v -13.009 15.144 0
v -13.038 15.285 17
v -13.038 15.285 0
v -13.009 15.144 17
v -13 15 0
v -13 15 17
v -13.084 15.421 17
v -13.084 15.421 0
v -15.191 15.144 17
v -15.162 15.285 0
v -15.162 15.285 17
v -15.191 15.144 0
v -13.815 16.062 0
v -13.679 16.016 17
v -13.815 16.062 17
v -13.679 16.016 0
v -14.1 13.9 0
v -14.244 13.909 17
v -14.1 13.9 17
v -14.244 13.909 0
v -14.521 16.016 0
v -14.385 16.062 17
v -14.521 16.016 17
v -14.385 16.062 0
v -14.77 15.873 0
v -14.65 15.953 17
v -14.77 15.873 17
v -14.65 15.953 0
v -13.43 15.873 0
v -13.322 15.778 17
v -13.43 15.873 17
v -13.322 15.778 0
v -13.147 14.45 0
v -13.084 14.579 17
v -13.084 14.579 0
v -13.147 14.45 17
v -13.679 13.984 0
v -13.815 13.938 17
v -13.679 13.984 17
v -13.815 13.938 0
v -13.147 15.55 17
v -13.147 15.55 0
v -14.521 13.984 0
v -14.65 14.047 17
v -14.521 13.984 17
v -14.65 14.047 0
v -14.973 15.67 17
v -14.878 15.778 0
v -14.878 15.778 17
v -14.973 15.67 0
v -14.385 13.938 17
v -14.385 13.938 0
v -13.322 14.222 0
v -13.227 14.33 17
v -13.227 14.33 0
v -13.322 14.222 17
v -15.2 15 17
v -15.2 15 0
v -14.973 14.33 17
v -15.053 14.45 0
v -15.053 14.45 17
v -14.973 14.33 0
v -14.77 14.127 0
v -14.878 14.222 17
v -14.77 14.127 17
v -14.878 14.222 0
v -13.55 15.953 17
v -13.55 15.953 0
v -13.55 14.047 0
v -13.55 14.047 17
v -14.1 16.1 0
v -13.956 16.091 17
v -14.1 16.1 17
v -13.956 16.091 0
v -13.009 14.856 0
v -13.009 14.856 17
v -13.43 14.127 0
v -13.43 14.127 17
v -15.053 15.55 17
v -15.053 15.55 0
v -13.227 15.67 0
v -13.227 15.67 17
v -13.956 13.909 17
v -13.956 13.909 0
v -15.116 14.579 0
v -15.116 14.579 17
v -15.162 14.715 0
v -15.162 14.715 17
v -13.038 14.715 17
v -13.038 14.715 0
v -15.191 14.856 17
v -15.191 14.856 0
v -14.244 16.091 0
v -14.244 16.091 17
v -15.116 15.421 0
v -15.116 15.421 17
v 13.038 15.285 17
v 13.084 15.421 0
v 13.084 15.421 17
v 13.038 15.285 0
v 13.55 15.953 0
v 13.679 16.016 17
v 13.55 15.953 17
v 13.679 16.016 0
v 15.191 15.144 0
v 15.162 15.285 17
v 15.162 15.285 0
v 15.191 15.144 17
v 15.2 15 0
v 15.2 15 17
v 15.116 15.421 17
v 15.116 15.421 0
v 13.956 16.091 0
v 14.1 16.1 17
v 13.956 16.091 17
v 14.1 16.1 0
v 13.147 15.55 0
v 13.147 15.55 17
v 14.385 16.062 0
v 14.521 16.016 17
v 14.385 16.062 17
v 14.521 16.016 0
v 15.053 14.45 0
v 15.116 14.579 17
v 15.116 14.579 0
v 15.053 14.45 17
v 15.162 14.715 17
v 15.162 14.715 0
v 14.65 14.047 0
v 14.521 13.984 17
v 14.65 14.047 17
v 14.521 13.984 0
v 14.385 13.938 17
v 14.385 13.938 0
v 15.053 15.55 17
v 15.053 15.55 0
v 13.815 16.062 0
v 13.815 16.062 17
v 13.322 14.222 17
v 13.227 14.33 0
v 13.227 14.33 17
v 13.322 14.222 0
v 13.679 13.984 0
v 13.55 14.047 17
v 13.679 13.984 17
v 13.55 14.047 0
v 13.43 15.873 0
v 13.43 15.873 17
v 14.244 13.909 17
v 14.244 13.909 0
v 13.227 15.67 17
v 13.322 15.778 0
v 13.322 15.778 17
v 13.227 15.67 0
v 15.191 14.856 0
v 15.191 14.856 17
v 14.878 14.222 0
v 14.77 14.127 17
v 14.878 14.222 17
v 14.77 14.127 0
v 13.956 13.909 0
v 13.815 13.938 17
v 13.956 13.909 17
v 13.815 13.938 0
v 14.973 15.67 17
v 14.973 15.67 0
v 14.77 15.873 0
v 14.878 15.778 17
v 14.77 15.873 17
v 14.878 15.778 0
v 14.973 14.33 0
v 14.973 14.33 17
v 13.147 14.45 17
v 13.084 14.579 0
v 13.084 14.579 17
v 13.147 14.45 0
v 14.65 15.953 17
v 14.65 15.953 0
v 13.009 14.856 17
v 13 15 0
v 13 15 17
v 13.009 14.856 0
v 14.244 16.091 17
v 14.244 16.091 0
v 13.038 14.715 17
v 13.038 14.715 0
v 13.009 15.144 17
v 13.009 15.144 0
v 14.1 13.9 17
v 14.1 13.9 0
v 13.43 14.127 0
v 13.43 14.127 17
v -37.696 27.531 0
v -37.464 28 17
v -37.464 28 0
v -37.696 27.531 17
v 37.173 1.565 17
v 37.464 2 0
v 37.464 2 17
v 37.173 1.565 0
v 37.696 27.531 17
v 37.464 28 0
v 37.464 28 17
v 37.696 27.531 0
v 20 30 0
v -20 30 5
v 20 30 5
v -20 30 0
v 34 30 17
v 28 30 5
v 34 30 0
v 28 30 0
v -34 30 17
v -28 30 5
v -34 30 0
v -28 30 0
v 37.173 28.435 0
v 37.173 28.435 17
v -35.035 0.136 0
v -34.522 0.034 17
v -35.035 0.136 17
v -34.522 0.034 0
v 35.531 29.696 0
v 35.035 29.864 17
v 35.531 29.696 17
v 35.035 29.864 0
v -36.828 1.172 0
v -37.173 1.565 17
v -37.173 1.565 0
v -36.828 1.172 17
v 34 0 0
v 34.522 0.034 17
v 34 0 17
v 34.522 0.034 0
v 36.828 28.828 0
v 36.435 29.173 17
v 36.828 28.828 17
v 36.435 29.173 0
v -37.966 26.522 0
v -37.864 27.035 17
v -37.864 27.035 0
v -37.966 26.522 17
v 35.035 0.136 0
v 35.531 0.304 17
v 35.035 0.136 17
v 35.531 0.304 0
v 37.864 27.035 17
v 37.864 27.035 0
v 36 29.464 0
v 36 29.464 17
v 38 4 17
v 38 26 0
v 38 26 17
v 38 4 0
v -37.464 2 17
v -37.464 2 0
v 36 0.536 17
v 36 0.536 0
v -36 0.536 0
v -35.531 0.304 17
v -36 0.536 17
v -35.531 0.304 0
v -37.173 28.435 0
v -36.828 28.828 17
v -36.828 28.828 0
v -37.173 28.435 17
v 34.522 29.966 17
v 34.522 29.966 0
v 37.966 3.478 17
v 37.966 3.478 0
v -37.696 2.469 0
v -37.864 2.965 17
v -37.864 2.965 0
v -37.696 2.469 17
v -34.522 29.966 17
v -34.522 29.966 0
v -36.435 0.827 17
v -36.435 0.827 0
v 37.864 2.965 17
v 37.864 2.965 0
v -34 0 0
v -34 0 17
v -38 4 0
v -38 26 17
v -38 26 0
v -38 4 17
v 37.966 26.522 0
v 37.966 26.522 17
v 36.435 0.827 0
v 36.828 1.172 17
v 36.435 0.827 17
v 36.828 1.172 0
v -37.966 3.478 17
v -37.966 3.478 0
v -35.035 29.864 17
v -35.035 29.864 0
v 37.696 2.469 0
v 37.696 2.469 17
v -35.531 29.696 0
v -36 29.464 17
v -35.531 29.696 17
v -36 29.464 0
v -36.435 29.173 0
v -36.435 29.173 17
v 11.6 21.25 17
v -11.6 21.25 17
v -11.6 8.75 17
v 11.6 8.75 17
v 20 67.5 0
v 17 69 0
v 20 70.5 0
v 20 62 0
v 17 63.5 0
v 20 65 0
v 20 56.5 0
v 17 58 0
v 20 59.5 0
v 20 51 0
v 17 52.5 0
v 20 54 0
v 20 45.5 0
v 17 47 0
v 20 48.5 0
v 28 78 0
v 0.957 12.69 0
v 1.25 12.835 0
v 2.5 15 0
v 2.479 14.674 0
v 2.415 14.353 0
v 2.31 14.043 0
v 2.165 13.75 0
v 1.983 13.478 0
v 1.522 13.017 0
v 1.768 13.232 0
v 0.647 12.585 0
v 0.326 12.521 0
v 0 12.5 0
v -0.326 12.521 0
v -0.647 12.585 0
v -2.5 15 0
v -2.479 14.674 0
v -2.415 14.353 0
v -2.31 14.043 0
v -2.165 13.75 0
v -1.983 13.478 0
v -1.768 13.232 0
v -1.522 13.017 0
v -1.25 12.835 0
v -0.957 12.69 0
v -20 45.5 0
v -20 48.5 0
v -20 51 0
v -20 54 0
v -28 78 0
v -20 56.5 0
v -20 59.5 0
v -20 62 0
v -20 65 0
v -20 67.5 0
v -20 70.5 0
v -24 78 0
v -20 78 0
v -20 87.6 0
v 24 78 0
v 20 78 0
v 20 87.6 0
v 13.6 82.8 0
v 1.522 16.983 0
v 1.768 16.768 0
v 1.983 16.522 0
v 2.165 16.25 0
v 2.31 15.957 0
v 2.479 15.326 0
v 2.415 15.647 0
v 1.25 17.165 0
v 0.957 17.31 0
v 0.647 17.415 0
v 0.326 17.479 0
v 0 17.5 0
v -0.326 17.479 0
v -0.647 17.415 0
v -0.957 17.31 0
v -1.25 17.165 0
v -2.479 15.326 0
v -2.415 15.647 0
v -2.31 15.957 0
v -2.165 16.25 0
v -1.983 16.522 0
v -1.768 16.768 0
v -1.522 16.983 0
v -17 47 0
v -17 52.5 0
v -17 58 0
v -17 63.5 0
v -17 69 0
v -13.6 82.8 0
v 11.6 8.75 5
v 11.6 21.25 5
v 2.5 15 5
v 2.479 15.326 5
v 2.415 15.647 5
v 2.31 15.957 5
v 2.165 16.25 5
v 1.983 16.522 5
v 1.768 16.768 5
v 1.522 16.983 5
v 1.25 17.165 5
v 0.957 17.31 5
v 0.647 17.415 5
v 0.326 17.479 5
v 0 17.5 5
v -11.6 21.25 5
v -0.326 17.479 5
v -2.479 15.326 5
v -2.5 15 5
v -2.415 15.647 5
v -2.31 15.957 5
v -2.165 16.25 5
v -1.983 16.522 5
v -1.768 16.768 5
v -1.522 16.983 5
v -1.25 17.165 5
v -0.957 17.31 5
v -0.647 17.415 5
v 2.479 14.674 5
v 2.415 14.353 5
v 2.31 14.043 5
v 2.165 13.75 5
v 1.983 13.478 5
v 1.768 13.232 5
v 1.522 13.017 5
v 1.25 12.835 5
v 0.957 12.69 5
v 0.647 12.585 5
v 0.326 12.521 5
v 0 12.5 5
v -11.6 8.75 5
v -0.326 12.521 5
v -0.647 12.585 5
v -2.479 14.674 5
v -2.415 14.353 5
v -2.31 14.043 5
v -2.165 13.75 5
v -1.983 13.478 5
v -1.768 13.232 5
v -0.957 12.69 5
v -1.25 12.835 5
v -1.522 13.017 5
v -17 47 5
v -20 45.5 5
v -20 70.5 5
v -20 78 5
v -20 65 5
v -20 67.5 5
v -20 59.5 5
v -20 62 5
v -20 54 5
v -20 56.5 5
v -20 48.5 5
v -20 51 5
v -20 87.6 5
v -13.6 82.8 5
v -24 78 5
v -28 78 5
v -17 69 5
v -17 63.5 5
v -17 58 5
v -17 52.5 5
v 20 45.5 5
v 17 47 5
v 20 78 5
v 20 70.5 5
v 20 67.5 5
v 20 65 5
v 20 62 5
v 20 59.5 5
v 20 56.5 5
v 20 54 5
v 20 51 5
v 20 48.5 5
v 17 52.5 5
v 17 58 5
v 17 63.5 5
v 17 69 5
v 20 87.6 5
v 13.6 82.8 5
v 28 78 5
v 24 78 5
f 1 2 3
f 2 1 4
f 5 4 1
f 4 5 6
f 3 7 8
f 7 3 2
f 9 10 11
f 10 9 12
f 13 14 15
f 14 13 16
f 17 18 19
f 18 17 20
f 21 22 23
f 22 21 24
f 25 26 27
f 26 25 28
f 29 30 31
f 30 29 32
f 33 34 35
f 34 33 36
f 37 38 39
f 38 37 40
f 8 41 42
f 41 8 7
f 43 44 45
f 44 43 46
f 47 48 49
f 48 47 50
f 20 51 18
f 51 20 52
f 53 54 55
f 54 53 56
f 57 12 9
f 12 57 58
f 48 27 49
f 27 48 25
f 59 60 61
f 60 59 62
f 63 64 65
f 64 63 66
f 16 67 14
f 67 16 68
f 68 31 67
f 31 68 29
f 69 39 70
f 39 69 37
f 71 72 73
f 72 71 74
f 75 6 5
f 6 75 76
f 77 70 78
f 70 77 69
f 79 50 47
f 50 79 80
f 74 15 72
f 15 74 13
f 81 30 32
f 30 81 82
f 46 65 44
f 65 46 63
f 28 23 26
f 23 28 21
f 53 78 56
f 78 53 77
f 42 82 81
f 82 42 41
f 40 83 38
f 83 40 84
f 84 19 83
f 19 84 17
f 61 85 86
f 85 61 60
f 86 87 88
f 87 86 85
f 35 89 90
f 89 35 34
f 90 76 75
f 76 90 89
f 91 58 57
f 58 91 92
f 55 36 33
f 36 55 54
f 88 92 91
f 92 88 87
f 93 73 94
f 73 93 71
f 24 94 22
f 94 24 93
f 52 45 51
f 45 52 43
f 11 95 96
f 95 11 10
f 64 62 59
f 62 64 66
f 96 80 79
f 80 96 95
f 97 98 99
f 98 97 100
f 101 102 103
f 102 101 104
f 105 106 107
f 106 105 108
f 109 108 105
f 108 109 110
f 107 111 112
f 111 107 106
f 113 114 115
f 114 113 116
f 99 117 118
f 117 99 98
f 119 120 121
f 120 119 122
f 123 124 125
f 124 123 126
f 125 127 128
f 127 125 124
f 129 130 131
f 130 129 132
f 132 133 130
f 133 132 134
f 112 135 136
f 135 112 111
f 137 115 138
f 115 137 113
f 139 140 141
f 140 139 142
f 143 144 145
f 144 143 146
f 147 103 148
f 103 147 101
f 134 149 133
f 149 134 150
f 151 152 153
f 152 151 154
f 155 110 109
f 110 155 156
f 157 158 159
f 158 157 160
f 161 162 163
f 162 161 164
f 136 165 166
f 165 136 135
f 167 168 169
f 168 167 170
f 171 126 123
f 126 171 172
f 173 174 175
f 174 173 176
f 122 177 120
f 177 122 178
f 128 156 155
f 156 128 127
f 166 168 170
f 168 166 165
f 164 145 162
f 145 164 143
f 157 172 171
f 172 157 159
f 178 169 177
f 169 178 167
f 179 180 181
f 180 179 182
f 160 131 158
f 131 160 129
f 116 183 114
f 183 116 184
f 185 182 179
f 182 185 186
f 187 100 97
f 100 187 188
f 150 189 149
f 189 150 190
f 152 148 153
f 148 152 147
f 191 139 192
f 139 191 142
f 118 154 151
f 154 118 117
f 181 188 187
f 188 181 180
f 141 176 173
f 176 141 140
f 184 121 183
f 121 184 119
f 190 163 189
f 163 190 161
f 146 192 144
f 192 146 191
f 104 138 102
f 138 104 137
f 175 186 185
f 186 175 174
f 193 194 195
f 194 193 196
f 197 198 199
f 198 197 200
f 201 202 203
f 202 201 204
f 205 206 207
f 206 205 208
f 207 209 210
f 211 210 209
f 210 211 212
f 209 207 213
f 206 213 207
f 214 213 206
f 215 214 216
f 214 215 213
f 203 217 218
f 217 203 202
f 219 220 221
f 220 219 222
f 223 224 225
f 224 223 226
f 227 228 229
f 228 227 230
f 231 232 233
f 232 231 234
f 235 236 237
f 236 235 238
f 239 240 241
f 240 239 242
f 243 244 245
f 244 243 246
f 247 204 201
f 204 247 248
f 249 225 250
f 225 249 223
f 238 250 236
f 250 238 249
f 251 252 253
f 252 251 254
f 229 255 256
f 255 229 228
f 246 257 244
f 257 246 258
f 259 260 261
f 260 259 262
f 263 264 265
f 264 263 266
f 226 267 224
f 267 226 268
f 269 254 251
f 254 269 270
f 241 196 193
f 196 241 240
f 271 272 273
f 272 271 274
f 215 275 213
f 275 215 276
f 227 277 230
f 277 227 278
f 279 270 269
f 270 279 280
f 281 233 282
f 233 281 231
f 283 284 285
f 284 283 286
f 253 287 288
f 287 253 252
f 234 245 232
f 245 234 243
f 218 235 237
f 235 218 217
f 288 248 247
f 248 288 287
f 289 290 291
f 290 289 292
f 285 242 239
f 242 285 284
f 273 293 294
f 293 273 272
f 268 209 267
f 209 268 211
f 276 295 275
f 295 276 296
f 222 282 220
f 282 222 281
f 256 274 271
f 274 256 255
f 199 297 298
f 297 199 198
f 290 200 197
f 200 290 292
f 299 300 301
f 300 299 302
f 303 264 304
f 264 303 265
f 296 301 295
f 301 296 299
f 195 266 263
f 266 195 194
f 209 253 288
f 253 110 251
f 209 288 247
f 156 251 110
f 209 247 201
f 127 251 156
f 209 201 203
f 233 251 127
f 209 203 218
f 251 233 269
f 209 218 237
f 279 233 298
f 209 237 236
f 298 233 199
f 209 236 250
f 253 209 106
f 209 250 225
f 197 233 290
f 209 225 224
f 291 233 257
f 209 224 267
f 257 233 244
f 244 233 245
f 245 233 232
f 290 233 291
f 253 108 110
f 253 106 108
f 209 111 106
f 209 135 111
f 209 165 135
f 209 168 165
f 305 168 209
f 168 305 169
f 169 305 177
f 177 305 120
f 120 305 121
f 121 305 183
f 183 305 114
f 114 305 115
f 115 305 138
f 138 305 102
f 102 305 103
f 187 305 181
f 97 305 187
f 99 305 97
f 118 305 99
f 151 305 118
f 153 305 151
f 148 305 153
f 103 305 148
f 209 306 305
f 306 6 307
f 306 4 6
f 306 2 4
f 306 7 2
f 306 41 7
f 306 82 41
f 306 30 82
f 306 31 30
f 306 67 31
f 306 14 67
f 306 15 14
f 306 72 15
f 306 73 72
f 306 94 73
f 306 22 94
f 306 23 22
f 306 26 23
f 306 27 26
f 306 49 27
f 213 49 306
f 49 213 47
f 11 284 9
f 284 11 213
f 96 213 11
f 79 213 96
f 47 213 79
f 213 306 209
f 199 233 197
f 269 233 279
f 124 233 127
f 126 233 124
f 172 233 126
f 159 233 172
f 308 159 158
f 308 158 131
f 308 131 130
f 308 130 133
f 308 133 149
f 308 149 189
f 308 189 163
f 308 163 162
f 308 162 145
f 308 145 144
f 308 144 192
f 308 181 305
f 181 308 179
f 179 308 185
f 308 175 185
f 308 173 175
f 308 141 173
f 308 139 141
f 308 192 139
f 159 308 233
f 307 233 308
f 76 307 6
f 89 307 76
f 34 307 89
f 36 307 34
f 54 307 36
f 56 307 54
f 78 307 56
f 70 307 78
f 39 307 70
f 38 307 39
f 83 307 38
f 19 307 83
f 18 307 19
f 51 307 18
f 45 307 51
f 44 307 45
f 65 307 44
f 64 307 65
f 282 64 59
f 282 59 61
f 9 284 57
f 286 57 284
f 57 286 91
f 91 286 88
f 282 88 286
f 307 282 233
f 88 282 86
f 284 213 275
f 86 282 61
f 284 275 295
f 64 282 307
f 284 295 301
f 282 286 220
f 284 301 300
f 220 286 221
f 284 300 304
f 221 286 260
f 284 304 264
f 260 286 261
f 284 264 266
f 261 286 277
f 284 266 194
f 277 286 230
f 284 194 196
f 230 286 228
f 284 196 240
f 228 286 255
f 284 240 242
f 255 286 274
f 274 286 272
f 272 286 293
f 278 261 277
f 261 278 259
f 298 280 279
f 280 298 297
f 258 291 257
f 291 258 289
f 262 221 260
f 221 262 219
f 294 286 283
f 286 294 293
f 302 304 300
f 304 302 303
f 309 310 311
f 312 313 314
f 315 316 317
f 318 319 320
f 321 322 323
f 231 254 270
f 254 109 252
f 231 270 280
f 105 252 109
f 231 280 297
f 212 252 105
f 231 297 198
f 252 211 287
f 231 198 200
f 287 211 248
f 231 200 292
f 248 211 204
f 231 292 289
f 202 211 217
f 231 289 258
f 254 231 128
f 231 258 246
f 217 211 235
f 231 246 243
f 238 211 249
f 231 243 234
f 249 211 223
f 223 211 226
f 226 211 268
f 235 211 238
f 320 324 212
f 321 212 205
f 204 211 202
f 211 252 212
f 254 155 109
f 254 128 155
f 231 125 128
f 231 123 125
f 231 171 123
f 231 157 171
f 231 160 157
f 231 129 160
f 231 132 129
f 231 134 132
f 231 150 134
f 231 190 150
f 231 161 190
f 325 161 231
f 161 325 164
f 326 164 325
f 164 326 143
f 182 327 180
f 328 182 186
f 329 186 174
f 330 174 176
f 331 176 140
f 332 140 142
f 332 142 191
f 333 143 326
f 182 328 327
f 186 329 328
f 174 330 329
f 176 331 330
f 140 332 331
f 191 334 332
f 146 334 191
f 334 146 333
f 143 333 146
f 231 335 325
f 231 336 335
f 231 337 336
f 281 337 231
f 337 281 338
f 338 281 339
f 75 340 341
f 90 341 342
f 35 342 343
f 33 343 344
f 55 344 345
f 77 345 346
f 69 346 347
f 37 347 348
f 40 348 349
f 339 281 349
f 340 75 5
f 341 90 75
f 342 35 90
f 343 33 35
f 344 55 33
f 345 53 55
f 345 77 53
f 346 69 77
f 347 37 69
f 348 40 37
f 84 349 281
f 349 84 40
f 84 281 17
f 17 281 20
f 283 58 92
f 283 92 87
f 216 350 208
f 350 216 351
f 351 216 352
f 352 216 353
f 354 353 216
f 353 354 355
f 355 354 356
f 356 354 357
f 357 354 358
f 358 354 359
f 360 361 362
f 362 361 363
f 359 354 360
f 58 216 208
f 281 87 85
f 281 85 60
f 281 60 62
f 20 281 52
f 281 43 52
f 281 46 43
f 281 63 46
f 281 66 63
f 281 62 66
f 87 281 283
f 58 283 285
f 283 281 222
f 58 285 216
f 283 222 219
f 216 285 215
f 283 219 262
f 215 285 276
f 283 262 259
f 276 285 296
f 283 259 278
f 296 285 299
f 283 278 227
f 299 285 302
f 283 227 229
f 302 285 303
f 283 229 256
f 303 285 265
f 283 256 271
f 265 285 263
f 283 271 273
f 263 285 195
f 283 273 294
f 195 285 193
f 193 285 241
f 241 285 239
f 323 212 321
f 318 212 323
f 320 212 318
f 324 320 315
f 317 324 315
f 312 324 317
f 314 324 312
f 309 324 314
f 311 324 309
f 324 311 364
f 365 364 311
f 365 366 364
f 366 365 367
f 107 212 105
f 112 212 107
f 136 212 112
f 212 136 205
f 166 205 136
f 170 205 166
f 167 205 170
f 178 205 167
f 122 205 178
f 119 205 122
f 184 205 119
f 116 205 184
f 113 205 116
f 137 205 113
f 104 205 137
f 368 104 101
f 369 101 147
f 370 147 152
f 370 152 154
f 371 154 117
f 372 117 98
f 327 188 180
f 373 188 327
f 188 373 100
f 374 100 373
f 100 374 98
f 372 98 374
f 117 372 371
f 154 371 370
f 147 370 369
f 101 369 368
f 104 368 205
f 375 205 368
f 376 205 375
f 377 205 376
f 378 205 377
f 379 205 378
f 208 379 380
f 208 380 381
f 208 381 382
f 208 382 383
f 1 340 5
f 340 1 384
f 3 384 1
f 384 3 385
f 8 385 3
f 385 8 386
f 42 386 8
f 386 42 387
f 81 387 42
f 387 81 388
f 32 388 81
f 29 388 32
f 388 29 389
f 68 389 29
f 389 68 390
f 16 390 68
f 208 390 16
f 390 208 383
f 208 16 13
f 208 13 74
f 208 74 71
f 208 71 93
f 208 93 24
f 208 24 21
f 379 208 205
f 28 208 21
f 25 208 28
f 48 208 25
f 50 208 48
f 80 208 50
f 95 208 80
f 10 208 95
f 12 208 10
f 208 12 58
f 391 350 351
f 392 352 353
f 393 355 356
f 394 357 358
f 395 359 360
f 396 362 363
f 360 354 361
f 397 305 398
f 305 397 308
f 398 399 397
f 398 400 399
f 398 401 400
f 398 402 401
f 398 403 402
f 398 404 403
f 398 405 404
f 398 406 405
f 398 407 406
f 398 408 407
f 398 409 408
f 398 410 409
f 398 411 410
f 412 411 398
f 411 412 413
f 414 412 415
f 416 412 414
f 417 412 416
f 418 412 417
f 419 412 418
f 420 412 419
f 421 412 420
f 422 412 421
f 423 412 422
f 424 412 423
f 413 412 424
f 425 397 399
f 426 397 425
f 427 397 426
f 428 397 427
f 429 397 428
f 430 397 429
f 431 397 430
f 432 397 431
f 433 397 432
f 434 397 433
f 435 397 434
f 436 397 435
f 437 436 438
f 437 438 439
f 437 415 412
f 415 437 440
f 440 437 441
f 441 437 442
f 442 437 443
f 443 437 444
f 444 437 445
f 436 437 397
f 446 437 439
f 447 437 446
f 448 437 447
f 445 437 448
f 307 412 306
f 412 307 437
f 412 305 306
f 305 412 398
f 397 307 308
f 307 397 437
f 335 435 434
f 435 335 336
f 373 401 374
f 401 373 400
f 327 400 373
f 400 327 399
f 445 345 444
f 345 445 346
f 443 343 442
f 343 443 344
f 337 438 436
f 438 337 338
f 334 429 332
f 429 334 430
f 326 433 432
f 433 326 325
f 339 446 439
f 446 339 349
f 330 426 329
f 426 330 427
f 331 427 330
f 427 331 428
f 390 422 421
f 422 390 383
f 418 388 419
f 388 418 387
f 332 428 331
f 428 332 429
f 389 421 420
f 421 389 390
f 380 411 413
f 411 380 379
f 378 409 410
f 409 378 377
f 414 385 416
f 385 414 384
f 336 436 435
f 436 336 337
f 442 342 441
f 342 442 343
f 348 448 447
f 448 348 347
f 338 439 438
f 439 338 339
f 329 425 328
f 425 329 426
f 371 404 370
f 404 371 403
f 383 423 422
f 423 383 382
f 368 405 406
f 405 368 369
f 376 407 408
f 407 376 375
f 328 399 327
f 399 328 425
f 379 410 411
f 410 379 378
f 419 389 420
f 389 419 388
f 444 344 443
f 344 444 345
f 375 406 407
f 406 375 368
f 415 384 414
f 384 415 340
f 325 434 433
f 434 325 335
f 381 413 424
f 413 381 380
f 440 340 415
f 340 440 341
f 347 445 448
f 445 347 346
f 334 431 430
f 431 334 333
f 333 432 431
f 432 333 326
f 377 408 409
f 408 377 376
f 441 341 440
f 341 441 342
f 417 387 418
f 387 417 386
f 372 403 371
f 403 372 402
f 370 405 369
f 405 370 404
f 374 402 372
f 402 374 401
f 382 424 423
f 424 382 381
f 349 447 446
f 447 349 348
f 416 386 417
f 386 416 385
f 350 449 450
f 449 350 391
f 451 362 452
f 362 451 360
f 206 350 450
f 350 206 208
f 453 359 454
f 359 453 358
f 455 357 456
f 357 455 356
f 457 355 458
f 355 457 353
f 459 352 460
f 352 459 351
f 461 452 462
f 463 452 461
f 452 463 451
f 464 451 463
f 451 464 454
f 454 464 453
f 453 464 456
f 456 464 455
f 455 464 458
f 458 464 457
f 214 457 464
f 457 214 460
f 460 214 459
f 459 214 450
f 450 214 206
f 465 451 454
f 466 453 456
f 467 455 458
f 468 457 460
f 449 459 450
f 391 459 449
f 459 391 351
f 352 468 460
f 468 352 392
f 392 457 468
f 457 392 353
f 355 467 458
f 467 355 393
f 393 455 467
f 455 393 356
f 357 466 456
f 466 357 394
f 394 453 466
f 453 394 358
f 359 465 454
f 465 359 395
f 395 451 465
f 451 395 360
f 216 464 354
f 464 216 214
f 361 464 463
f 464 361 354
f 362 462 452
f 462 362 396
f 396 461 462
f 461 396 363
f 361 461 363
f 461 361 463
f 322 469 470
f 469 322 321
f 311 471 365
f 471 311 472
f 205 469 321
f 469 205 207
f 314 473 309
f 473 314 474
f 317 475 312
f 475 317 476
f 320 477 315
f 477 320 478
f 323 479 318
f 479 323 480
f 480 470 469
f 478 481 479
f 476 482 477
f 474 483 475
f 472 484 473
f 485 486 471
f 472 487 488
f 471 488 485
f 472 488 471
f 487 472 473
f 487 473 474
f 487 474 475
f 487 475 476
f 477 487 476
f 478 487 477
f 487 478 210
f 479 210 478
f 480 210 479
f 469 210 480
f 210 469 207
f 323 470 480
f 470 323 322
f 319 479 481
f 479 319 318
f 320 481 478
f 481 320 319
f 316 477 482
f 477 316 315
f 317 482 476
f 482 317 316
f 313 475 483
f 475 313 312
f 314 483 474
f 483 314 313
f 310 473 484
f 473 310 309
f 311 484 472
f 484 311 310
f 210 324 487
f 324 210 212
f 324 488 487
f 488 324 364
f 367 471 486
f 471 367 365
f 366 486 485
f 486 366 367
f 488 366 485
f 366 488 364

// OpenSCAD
/* ============================================================
 *  GARRA DO BRAÇO ROBÓTICO - COLETA DE AMOSTRAS ESPACIAIS
 *  Modelo paramétrico em OpenSCAD
 *  Projetada para servo 9g (SG90) - encaixe previsto no corpo
 * ============================================================
 *  Ajuste as variáveis abaixo para redimensionar a peça.
 * ============================================================ */

// ----------------- PARÂMETROS AJUSTÁVEIS -----------------
comprimento_dedo   = 50;   // Comprimento de cada dedo da garra (mm)
largura_dedo       = 8;    // Largura do dedo (mm)
espessura          = 5;    // Espessura geral das peças (mm)
abertura_garra     = 40;   // Distância entre os dedos quando aberta (mm)
num_dentes         = 5;    // Dentes de fixação na ponta (microgravidade)
tam_dente          = 3;    // Tamanho de cada dente (mm)

// Encaixe do servo SG90 (9g) - dimensões padrão
servo_larg  = 23.2;  // Largura do corpo do servo (mm)
servo_prof  = 12.5;  // Profundidade do corpo (mm)
servo_alt   = 12;    // Altura do rebaixo de encaixe (mm)
furo_eixo   = 5;     // Diâmetro do furo para o eixo do servo (mm)

base_larg  = abertura_garra + 2*largura_dedo + 20; // Largura da base
base_prof  = 30;                                   // Profundidade da base

$fn = 48; // Resolução das curvas

// ----------------- MONTAGEM -----------------
base_garra();
dedo(posicao = -abertura_garra/2 - largura_dedo, espelhar = false);
dedo(posicao =  abertura_garra/2,                espelhar = true);

// ----------------- MÓDULOS -----------------

// Base da garra com rebaixo para o servo 9g e furo do eixo
module base_garra() {
    difference() {
        // Corpo da base com cantos arredondados
        hull() {
            for (x = [-base_larg/2 + 4, base_larg/2 - 4])
                for (y = [4, base_prof - 4])
                    translate([x, y, 0])
                        cylinder(h = espessura + servo_alt, r = 4);
        }
        // Rebaixo de encaixe do servo SG90
        translate([-servo_larg/2, base_prof/2 - servo_prof/2, espessura])
            cube([servo_larg, servo_prof, servo_alt + 1]);
        // Furo para passagem do eixo/braço do servo
        translate([0, base_prof/2, -1])
            cylinder(h = espessura + 2, d = furo_eixo);
        // Furos dos parafusos de fixação do servo (M2)
        for (x = [-servo_larg/2 - 2.5, servo_larg/2 + 2.5])
            translate([x, base_prof/2, -1])
                cylinder(h = espessura + servo_alt + 2, d = 2.2);
    }
}

// Dedo da garra com dentes de retenção (evita fuga da amostra
// em microgravidade, onde a carga "flutua" se mal presa).
// O dedo é desenhado com a face interna em x = 0 e os dentes
// apontando para o centro da garra; depois é espelhado conforme o lado.
module dedo(posicao, espelhar) {
    translate([posicao + (espelhar ? 0 : largura_dedo), base_prof - 2, 0])
        mirror([espelhar ? 0 : 1, 0, 0])
            union() {
                // Haste do dedo (face interna alinhada em x = 0)
                cube([largura_dedo, comprimento_dedo, espessura]);
                // Dentes de retenção na face interna, voltados ao centro
                for (i = [0 : num_dentes - 1])
                    translate([0,
                               comprimento_dedo*0.35
                               + i*(comprimento_dedo*0.55/num_dentes),
                               0])
                        dente();
                // Ponta curva de captura (gancho interno)
                translate([0, comprimento_dedo, 0])
                    linear_extrude(height = espessura)
                        polygon([[0, 0],
                                 [-largura_dedo*0.8, largura_dedo*0.6],
                                 [0, largura_dedo*1.2],
                                 [largura_dedo*0.5, 0]]);
            }
}

// Dente triangular de retenção (aponta para -X, centro da garra)
module dente() {
    linear_extrude(height = espessura)
        polygon([[0, 0], [-tam_dente, tam_dente/2], [0, tam_dente]]);
}
